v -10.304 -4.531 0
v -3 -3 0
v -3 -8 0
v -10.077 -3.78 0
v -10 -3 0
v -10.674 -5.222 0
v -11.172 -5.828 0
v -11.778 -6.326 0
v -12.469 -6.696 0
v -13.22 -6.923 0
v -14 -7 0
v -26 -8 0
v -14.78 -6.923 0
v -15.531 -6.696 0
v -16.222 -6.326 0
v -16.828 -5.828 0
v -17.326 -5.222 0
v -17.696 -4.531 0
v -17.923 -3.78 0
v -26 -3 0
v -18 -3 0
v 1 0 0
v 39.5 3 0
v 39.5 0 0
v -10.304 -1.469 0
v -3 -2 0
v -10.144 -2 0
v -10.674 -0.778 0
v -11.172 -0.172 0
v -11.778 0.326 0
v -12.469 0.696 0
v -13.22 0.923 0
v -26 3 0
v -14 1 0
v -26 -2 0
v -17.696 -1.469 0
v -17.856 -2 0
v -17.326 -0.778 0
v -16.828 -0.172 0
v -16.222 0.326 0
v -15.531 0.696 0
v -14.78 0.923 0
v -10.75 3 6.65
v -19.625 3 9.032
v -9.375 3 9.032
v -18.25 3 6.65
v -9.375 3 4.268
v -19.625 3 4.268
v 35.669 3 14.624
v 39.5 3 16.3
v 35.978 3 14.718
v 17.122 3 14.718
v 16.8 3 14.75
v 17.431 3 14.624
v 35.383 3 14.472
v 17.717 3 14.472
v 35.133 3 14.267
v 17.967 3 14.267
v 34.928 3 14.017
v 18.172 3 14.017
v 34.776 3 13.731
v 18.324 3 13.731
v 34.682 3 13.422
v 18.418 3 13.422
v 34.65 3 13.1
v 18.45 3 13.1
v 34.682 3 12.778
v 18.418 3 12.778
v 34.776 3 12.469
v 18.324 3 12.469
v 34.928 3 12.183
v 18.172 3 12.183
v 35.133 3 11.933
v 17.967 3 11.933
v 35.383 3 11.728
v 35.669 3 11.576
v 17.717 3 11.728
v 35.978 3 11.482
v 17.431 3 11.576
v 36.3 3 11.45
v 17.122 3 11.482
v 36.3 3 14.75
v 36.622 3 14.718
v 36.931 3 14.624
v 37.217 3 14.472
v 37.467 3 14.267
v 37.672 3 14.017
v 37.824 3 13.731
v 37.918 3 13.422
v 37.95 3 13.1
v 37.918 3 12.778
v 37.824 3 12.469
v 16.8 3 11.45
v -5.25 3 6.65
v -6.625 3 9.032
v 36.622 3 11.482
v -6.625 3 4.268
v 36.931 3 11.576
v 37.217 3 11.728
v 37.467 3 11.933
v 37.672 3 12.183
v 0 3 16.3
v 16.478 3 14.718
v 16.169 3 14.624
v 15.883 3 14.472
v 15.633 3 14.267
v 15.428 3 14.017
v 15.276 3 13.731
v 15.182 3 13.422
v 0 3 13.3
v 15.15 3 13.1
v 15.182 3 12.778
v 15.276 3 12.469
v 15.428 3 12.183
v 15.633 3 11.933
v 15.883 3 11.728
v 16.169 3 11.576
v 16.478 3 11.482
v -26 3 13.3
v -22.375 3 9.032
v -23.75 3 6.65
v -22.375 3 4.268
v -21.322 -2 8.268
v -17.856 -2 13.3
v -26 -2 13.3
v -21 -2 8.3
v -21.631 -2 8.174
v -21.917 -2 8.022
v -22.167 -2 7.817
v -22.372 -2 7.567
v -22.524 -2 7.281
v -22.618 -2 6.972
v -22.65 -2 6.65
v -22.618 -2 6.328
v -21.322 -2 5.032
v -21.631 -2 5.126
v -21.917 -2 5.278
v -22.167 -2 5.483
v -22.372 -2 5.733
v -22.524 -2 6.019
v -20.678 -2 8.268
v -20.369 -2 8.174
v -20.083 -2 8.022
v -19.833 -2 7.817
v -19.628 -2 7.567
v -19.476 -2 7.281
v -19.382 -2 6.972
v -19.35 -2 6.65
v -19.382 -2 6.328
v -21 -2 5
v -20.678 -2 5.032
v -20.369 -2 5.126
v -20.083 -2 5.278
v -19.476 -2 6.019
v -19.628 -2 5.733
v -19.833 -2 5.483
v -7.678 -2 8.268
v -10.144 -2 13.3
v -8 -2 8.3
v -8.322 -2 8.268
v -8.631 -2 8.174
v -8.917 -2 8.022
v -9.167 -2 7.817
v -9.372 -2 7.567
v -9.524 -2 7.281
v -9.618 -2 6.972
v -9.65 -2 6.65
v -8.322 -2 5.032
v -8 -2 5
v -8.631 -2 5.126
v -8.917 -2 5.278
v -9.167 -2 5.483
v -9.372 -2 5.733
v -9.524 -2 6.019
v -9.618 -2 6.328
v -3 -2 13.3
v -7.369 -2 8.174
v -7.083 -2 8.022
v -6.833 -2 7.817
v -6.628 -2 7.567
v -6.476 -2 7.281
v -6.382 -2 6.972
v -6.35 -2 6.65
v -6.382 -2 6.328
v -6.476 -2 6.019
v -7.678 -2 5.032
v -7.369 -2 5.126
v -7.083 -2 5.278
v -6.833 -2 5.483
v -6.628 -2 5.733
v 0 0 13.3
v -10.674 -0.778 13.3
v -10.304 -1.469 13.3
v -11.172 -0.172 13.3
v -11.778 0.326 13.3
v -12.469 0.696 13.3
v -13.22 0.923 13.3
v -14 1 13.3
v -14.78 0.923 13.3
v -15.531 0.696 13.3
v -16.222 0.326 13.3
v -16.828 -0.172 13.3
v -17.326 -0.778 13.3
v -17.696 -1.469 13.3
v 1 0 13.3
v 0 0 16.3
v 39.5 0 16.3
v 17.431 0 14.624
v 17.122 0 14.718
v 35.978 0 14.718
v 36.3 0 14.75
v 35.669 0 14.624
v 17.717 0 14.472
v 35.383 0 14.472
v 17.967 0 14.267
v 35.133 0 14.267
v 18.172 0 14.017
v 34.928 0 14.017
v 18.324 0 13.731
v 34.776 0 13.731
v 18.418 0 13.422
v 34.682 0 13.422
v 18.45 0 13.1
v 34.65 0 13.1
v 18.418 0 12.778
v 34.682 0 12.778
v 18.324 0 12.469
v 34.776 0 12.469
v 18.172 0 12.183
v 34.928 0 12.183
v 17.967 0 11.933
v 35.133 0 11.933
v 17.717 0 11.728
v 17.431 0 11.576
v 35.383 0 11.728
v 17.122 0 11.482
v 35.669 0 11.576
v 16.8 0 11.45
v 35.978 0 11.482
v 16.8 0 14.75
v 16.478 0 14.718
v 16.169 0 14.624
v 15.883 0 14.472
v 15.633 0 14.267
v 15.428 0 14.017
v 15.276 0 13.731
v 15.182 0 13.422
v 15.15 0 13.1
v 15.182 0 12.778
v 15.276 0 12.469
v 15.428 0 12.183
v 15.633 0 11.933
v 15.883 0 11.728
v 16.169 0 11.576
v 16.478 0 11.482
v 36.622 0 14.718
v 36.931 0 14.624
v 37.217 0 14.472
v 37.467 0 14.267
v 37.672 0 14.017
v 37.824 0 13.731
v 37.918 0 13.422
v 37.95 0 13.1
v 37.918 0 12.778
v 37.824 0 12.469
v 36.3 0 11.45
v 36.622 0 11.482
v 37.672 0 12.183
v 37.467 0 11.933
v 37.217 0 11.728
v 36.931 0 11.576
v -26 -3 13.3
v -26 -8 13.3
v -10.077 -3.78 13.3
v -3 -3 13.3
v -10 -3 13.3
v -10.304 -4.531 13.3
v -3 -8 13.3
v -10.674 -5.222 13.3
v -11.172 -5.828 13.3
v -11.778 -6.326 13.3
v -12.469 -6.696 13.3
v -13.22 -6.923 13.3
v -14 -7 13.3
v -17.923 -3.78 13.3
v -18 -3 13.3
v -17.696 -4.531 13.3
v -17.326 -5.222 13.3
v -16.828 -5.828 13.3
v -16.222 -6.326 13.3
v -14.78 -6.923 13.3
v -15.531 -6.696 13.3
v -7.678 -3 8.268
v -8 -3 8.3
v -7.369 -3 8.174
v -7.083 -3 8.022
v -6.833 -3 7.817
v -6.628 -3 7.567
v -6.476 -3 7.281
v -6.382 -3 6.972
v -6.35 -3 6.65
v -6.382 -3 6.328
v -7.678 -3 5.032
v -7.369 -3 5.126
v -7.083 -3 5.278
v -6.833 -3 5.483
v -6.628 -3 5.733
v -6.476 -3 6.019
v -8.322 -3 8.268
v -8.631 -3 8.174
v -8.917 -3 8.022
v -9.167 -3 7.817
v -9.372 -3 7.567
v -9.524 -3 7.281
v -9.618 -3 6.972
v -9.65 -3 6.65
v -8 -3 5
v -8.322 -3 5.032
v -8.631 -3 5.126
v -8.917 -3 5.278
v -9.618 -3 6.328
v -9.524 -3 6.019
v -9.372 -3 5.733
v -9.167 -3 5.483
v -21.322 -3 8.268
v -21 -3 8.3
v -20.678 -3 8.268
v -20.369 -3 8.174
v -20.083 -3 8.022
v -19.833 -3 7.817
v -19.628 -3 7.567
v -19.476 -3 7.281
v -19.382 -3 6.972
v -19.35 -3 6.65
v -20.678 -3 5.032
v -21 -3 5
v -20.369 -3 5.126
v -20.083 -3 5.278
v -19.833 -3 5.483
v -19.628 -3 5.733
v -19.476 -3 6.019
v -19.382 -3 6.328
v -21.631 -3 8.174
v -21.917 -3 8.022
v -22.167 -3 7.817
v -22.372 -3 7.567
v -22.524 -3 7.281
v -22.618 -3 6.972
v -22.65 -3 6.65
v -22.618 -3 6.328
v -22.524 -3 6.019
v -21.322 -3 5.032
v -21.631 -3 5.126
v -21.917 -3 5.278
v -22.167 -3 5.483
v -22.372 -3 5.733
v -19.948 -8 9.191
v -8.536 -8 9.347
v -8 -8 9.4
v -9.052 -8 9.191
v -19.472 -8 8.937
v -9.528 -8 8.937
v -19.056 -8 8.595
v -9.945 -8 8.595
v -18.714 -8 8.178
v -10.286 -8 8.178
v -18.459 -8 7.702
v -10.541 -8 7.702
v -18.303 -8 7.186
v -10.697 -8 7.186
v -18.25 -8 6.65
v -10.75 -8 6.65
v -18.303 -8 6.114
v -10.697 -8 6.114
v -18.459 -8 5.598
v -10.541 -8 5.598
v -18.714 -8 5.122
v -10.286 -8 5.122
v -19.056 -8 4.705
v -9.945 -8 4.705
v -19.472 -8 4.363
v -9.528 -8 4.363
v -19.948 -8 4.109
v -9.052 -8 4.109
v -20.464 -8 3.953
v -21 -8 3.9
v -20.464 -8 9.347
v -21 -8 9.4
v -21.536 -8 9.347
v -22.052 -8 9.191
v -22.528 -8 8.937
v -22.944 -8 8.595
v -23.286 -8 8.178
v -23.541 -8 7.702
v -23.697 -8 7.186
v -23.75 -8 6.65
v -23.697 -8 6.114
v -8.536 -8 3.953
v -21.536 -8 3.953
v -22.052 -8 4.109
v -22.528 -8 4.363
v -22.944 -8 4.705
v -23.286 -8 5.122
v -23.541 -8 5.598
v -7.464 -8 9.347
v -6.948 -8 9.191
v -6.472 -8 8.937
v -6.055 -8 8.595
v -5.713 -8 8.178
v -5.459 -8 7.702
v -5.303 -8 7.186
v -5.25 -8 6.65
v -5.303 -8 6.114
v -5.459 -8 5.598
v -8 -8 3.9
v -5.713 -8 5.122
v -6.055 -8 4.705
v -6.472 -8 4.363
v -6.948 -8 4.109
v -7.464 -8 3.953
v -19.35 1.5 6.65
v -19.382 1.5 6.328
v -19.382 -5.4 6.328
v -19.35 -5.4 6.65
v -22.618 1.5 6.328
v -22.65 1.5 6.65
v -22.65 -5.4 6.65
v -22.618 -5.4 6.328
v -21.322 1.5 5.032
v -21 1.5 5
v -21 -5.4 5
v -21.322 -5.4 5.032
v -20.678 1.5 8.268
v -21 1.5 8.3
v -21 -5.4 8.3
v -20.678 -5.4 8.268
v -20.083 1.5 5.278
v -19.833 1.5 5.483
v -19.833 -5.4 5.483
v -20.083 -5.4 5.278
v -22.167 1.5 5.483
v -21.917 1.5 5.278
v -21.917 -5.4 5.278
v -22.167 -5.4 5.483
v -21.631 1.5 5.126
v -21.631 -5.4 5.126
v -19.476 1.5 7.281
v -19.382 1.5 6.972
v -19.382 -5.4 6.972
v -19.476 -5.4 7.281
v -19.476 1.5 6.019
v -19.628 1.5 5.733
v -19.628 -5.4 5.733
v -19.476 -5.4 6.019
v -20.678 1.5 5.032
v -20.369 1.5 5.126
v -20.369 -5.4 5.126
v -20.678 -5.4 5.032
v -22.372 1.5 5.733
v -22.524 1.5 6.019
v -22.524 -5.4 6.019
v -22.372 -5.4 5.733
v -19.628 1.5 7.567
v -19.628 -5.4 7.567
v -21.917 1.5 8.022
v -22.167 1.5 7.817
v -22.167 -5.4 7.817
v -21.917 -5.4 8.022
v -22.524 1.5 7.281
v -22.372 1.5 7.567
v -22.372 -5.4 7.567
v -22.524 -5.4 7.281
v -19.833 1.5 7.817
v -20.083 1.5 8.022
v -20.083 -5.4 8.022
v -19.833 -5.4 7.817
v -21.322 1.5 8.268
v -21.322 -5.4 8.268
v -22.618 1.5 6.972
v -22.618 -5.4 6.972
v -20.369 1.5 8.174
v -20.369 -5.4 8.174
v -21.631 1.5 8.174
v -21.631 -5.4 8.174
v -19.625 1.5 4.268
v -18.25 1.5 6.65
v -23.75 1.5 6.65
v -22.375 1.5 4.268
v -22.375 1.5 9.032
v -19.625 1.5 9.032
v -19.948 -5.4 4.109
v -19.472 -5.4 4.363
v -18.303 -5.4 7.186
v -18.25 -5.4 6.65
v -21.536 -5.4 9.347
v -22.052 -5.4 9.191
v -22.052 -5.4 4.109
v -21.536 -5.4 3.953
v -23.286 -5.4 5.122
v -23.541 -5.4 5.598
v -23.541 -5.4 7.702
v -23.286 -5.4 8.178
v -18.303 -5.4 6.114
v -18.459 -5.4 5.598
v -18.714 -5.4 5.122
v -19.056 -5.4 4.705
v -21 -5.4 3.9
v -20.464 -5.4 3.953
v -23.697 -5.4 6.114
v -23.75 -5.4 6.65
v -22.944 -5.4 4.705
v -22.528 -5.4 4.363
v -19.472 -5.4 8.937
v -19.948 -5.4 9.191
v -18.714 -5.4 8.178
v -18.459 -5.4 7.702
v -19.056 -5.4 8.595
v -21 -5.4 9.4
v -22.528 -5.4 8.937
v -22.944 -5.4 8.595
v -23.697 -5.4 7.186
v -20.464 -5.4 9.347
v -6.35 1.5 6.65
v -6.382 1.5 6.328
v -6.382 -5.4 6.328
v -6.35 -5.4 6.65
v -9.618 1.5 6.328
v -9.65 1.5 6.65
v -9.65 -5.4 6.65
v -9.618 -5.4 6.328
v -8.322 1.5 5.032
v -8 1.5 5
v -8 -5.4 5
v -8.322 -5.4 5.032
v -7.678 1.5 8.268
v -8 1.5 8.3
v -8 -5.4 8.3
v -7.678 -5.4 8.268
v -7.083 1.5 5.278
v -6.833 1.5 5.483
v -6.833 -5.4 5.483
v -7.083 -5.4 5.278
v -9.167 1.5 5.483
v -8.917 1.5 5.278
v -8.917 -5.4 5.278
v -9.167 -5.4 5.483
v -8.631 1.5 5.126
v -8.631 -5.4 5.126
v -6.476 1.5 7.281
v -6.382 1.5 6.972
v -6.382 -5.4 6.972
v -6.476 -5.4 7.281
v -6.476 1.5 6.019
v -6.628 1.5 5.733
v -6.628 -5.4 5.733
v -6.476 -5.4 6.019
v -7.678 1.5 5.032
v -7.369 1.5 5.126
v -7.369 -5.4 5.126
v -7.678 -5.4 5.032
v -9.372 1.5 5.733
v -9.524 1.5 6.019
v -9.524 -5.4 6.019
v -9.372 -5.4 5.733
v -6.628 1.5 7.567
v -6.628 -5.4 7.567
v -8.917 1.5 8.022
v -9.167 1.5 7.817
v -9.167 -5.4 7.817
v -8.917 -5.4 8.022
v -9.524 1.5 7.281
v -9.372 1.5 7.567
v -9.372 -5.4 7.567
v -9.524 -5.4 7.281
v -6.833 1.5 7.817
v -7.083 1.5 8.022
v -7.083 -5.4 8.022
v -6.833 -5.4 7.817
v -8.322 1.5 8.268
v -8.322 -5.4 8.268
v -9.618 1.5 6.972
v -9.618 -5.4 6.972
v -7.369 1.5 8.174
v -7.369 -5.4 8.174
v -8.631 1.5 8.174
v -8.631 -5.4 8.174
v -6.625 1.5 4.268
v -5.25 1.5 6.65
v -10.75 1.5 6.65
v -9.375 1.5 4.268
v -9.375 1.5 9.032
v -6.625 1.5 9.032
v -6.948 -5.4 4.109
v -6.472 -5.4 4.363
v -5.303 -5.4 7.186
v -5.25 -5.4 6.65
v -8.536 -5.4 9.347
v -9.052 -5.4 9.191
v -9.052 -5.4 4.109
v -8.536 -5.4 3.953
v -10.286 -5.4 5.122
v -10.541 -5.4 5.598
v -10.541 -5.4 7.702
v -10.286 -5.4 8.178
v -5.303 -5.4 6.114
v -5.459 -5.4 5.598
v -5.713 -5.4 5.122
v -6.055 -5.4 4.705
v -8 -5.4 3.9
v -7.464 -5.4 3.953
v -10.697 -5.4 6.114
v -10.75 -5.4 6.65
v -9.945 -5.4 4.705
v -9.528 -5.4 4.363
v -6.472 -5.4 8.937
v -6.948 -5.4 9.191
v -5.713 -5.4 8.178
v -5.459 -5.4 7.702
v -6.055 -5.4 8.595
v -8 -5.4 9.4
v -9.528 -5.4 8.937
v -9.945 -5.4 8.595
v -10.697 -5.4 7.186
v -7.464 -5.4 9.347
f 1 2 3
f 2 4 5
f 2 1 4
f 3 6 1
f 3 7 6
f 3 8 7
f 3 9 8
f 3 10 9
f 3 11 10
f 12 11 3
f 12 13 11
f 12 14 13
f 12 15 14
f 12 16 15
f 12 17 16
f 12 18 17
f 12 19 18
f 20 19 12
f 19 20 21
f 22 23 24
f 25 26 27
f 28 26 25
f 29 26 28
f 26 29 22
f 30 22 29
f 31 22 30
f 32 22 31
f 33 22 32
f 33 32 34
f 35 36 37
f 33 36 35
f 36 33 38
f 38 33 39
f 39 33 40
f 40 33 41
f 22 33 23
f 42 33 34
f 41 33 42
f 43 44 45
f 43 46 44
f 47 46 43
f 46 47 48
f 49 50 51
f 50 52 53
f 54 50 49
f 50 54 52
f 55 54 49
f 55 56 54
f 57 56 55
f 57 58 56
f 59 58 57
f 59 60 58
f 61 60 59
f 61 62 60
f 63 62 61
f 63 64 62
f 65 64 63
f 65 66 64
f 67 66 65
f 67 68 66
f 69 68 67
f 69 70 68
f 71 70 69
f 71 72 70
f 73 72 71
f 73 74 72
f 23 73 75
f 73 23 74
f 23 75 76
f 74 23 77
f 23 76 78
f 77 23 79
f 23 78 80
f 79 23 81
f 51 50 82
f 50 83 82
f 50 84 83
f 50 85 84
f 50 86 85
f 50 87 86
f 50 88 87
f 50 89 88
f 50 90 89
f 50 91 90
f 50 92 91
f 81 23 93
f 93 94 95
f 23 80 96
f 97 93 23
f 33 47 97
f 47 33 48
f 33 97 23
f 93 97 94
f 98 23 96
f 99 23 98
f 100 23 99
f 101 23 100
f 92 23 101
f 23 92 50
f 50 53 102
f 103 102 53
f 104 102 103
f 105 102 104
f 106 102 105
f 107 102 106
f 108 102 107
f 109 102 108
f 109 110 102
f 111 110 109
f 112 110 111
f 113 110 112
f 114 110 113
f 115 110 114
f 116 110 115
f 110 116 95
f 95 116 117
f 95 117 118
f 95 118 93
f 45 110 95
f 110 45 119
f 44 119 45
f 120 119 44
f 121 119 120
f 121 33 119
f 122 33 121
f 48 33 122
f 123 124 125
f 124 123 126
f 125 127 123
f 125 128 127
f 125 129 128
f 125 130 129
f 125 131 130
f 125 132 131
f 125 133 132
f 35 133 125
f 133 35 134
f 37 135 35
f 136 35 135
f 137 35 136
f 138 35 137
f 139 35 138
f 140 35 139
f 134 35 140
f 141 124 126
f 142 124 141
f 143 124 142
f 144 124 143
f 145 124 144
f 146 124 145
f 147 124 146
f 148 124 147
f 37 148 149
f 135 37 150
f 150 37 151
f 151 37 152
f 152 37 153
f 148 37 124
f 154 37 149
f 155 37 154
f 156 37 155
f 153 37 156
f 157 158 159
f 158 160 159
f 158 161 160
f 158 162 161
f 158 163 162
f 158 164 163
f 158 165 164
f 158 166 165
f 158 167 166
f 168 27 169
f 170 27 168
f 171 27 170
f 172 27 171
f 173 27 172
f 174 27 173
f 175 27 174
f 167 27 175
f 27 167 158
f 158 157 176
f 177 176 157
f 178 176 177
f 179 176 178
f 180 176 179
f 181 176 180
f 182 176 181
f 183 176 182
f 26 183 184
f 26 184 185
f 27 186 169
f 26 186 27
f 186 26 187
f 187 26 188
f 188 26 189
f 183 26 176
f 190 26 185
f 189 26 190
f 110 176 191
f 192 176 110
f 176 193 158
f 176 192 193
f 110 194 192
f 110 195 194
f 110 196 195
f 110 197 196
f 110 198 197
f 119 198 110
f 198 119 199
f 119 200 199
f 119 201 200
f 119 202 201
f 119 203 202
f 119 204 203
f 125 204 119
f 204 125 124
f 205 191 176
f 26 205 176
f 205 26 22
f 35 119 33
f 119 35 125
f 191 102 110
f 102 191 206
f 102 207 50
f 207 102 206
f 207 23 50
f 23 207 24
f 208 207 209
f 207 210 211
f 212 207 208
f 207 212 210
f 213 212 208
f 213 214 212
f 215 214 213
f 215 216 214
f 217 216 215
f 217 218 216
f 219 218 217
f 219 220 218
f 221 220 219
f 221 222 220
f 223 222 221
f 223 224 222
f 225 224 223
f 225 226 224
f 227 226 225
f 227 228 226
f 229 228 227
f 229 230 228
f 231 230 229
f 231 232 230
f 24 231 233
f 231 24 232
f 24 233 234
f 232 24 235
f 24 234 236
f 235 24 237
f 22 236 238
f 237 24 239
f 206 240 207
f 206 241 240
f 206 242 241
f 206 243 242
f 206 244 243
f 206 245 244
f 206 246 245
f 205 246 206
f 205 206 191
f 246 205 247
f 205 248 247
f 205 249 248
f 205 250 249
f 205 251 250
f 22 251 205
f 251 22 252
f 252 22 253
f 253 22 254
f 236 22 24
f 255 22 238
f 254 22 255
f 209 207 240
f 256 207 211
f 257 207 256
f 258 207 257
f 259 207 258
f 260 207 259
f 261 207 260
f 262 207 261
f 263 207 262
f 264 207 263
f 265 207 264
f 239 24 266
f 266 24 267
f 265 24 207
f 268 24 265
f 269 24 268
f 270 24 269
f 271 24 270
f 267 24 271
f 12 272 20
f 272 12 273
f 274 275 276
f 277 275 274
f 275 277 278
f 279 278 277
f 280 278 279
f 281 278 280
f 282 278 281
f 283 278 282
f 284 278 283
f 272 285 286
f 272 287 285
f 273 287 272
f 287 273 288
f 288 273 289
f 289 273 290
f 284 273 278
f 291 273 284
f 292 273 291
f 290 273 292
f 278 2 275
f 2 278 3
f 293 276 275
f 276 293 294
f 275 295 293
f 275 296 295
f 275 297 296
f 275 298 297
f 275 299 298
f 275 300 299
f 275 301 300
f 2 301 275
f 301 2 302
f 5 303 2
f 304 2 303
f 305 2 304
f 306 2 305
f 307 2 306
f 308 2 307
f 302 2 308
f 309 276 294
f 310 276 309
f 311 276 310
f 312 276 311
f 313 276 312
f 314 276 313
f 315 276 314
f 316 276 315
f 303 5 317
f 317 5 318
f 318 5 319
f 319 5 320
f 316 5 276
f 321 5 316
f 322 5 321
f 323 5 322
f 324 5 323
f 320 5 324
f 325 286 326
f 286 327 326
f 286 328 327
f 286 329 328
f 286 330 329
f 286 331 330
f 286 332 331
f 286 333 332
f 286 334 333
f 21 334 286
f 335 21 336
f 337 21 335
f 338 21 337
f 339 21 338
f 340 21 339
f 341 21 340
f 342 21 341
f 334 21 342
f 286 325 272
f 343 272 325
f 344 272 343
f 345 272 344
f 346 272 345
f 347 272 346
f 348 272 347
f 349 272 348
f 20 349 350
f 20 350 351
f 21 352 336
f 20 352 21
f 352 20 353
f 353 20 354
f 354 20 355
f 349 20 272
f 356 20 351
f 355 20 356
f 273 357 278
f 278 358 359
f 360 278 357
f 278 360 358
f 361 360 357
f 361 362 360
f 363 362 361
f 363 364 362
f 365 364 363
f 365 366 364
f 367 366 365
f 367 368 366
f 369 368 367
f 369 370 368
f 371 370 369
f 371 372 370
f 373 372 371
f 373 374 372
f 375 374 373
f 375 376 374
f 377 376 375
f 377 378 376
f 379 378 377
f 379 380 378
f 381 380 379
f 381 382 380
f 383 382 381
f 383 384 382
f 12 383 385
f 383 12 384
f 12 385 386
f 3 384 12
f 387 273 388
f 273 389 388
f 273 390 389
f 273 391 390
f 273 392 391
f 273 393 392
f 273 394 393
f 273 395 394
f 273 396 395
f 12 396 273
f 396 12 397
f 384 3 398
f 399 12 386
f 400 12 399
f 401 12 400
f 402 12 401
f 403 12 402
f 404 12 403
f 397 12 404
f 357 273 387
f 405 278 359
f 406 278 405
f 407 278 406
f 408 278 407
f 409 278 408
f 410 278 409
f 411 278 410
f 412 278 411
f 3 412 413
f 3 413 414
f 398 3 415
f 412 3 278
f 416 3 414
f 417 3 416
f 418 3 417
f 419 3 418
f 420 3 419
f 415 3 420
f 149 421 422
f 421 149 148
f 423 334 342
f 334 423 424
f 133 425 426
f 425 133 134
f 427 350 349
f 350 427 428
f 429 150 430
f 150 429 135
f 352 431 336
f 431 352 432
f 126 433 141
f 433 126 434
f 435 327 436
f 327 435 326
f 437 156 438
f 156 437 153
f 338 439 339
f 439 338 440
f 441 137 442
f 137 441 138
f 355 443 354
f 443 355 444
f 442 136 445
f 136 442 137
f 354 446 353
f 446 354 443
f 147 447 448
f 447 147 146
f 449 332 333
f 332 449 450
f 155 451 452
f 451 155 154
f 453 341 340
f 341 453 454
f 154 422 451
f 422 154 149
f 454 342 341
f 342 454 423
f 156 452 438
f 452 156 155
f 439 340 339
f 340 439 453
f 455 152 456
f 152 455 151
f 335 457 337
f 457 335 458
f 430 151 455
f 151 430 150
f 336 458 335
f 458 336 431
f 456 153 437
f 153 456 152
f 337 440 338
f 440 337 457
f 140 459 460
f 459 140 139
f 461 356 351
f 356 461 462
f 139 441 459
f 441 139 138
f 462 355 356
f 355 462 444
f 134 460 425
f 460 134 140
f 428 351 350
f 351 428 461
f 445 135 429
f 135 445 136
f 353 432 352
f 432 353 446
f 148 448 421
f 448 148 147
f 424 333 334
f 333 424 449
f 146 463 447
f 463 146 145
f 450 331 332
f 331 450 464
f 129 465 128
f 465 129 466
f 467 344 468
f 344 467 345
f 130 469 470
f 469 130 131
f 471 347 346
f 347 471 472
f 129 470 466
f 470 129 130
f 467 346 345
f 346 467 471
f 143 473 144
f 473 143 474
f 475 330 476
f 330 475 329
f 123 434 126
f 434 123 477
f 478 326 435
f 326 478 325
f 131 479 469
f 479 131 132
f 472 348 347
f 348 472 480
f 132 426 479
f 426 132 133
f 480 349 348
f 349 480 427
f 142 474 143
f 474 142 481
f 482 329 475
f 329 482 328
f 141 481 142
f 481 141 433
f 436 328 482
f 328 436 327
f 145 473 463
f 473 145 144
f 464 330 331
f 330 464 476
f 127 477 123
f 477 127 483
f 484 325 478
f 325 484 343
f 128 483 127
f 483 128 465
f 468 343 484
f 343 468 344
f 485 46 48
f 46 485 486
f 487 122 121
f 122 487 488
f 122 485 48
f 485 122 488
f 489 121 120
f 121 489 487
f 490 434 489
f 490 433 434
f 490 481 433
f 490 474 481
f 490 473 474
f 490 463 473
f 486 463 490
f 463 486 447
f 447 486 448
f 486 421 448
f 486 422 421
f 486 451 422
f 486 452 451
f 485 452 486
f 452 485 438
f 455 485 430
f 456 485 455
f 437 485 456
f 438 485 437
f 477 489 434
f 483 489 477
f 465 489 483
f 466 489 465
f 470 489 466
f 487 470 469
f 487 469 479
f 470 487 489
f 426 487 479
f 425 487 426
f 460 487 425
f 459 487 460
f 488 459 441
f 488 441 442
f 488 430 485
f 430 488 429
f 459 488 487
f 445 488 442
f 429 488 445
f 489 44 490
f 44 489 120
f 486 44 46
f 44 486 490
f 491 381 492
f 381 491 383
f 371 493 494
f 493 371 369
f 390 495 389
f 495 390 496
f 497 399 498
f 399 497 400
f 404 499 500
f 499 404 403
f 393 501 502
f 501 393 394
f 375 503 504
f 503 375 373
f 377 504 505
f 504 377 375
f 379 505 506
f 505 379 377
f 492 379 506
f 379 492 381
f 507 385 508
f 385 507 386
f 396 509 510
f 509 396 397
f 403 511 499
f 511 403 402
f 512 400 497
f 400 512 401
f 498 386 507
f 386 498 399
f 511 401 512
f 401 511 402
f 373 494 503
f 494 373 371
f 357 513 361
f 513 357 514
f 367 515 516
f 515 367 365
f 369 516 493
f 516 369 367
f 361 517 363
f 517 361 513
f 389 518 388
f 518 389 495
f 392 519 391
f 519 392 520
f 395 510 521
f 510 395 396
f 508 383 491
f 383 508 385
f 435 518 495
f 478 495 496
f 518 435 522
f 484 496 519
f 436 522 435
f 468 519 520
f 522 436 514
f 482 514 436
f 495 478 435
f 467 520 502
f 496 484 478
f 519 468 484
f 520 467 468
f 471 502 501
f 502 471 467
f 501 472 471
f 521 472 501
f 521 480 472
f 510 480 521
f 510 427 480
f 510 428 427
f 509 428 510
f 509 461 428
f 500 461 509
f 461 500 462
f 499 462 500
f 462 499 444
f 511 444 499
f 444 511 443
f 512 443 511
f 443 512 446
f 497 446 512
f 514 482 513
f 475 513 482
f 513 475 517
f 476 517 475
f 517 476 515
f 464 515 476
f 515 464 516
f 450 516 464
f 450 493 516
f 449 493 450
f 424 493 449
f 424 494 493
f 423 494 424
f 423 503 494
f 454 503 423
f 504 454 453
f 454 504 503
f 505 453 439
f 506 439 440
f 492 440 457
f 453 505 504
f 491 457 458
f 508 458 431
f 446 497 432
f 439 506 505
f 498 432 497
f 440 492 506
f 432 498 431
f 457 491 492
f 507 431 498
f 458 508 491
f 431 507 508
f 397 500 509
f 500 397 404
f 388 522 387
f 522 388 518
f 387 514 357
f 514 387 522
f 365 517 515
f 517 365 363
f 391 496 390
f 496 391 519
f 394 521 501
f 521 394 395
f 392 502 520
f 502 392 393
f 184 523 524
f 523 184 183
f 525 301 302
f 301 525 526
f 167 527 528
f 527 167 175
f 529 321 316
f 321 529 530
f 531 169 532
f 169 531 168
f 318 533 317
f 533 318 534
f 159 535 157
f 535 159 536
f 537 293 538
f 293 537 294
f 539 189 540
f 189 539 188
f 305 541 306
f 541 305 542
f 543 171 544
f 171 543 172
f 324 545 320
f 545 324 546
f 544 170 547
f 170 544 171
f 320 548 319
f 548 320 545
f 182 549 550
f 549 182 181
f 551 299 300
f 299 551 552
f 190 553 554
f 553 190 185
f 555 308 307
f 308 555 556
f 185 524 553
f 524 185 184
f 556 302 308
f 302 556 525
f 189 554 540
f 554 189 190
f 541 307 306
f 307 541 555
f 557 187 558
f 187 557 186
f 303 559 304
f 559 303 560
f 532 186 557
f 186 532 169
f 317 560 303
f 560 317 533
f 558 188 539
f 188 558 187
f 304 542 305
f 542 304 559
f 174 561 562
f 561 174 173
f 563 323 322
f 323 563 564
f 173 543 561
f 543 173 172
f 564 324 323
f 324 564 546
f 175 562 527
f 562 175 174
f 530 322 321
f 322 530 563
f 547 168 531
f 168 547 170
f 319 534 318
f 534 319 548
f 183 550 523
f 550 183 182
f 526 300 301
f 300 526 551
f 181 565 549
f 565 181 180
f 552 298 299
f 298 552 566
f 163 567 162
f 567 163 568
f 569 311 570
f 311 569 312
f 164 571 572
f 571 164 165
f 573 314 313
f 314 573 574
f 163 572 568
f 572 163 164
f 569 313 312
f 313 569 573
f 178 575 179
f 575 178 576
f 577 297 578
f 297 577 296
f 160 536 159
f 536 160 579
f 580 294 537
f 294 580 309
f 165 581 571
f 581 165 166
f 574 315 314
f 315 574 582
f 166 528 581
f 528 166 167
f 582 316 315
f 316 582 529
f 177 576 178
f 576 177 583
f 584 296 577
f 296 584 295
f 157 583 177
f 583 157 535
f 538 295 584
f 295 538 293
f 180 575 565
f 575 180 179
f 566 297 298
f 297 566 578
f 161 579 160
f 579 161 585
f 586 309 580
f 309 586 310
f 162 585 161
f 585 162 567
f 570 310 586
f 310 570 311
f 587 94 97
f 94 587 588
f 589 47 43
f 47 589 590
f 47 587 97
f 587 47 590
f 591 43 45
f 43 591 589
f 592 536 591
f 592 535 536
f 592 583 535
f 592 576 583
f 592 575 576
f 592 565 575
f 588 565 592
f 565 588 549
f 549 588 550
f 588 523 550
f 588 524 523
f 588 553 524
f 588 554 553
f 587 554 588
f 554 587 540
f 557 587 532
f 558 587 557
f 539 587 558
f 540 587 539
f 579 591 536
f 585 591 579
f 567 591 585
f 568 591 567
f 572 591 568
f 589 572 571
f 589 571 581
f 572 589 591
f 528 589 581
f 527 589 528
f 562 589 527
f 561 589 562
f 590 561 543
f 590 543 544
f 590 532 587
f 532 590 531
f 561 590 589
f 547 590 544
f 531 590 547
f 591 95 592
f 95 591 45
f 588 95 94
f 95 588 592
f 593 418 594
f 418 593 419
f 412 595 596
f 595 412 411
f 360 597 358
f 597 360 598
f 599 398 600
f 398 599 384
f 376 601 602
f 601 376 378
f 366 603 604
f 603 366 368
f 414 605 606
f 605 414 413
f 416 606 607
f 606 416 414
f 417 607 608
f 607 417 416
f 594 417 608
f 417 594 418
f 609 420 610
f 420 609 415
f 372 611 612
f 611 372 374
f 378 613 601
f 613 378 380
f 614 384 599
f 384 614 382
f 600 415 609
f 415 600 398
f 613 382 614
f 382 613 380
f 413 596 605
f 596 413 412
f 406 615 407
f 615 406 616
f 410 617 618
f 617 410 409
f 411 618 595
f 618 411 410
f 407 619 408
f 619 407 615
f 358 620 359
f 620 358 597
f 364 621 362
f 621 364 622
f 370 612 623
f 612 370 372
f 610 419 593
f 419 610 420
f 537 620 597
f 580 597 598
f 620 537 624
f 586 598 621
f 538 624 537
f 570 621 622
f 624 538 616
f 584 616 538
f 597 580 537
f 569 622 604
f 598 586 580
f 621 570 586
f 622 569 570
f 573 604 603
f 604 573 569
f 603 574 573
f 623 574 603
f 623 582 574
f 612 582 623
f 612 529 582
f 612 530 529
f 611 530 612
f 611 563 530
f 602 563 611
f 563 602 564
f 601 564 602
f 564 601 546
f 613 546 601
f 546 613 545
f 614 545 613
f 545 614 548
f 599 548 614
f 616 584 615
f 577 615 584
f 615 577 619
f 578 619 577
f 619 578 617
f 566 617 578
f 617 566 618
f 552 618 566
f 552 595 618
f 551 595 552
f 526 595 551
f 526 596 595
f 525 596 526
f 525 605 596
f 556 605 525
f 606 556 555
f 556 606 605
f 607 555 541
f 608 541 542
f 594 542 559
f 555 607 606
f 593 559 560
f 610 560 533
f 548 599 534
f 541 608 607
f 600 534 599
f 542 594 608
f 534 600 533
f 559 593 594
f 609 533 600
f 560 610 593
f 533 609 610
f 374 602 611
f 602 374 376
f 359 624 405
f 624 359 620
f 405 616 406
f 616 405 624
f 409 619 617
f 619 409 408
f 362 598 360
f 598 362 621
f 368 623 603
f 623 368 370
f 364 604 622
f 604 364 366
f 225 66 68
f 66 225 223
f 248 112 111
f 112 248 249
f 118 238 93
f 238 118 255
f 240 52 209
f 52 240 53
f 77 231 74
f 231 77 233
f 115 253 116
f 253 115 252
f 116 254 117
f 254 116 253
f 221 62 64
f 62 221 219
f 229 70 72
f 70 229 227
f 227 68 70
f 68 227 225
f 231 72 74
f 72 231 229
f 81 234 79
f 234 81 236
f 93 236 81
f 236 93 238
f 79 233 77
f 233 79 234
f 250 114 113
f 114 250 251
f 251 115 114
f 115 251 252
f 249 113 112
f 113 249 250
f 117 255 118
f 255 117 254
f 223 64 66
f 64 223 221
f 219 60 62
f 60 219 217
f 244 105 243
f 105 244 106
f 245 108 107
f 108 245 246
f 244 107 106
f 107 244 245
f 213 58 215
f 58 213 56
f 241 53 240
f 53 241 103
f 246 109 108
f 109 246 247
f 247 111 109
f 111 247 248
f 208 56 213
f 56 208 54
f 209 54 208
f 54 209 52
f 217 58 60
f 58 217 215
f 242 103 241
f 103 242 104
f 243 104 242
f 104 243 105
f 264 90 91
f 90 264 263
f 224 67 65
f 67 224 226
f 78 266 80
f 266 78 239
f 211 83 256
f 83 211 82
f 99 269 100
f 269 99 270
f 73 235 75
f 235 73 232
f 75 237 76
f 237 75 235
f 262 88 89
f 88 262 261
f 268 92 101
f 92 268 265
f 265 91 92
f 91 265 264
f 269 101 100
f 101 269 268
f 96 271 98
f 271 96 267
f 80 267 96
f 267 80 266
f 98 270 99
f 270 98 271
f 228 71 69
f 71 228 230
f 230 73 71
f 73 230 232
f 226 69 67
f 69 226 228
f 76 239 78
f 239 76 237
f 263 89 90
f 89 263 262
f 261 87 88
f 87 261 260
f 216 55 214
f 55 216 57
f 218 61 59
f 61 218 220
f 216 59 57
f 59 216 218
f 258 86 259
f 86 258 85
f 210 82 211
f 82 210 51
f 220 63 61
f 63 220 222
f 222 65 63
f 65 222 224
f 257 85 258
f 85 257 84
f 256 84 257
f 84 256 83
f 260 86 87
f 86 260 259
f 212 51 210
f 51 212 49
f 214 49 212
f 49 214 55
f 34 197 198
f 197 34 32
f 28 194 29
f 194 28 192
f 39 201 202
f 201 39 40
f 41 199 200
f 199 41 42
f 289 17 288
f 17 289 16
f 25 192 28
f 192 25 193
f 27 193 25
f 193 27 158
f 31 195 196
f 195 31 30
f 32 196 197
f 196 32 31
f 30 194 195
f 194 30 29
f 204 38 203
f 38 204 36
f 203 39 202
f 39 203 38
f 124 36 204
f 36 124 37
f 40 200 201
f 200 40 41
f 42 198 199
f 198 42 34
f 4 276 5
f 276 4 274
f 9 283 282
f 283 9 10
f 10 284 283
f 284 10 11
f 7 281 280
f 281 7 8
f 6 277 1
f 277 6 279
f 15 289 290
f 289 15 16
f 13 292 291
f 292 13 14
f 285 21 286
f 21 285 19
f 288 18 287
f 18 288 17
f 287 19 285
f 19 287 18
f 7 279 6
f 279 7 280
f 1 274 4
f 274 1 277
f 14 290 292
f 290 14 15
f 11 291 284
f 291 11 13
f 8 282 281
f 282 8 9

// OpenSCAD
// file: ../lib/components/screw.scad
module screw(length, pad){
  pad = pad ? pad : 0;
  union(){
    cylinder(r=1.65, h=length + pad, center=true);
    translate([0,0,(length)/2 - 1.5]){
      cylinder(r=2.75, h=3,$fn=6, center=true);
    }
    translate([0,0,-(length)/2 + 1.5]){
      cylinder(r=2.75, h=3.2, center=true);
    }
  }
}
// main file
include <../lib/components/screw.scad>

$fn=32;

//39.5 x 16.3
//16.8 and 3.2
bed_x = 39.5;
bed_y = 3;
bed_z = 16.3;

bracket_z = 13.3;

rod_center = [-14,-3,0];


difference(){
  union(){
    bracket();
    translate([-14 - 12, -8, 0]) clip();
  }
  translate(rod_center){
    rod();
  }


  //bracket holders
  translate([0,0, bracket_z/2]){
    translate([-21,-2,0]){
      rotate([270,0,0]){
        screw(13);
      }
    }
    translate([-8,-2,0]){
      rotate([270,0,0]){
        screw(13);
      }
    }

  }

  //endstop holders
  translate([0,0, bed_z - 3.2]){
    translate([16.8,0,0]){
      rotate([270,0,0]){
        screw(13);
      }
    }
    translate([bed_x - 3.2,0,0]){
      rotate([270,0,0]){
        screw(13);
      }
    }
  }

}



module clip(){
  cube([23,5,bracket_z]);
}

module bracket(){
  union(){
    linear_extrude(height=bracket_z){
      hull(){
        square([1, bed_y]);
        translate([-8,-2]){
          square(5);
        }
      }
    } 
    translate([-14 - 12,-2,0]){
      cube([18,5, bracket_z ]);
    }

    cube([bed_x, bed_y, bed_z]);
  }
}

module rod(){
  cylinder(r=4, h=bed_z);
}
